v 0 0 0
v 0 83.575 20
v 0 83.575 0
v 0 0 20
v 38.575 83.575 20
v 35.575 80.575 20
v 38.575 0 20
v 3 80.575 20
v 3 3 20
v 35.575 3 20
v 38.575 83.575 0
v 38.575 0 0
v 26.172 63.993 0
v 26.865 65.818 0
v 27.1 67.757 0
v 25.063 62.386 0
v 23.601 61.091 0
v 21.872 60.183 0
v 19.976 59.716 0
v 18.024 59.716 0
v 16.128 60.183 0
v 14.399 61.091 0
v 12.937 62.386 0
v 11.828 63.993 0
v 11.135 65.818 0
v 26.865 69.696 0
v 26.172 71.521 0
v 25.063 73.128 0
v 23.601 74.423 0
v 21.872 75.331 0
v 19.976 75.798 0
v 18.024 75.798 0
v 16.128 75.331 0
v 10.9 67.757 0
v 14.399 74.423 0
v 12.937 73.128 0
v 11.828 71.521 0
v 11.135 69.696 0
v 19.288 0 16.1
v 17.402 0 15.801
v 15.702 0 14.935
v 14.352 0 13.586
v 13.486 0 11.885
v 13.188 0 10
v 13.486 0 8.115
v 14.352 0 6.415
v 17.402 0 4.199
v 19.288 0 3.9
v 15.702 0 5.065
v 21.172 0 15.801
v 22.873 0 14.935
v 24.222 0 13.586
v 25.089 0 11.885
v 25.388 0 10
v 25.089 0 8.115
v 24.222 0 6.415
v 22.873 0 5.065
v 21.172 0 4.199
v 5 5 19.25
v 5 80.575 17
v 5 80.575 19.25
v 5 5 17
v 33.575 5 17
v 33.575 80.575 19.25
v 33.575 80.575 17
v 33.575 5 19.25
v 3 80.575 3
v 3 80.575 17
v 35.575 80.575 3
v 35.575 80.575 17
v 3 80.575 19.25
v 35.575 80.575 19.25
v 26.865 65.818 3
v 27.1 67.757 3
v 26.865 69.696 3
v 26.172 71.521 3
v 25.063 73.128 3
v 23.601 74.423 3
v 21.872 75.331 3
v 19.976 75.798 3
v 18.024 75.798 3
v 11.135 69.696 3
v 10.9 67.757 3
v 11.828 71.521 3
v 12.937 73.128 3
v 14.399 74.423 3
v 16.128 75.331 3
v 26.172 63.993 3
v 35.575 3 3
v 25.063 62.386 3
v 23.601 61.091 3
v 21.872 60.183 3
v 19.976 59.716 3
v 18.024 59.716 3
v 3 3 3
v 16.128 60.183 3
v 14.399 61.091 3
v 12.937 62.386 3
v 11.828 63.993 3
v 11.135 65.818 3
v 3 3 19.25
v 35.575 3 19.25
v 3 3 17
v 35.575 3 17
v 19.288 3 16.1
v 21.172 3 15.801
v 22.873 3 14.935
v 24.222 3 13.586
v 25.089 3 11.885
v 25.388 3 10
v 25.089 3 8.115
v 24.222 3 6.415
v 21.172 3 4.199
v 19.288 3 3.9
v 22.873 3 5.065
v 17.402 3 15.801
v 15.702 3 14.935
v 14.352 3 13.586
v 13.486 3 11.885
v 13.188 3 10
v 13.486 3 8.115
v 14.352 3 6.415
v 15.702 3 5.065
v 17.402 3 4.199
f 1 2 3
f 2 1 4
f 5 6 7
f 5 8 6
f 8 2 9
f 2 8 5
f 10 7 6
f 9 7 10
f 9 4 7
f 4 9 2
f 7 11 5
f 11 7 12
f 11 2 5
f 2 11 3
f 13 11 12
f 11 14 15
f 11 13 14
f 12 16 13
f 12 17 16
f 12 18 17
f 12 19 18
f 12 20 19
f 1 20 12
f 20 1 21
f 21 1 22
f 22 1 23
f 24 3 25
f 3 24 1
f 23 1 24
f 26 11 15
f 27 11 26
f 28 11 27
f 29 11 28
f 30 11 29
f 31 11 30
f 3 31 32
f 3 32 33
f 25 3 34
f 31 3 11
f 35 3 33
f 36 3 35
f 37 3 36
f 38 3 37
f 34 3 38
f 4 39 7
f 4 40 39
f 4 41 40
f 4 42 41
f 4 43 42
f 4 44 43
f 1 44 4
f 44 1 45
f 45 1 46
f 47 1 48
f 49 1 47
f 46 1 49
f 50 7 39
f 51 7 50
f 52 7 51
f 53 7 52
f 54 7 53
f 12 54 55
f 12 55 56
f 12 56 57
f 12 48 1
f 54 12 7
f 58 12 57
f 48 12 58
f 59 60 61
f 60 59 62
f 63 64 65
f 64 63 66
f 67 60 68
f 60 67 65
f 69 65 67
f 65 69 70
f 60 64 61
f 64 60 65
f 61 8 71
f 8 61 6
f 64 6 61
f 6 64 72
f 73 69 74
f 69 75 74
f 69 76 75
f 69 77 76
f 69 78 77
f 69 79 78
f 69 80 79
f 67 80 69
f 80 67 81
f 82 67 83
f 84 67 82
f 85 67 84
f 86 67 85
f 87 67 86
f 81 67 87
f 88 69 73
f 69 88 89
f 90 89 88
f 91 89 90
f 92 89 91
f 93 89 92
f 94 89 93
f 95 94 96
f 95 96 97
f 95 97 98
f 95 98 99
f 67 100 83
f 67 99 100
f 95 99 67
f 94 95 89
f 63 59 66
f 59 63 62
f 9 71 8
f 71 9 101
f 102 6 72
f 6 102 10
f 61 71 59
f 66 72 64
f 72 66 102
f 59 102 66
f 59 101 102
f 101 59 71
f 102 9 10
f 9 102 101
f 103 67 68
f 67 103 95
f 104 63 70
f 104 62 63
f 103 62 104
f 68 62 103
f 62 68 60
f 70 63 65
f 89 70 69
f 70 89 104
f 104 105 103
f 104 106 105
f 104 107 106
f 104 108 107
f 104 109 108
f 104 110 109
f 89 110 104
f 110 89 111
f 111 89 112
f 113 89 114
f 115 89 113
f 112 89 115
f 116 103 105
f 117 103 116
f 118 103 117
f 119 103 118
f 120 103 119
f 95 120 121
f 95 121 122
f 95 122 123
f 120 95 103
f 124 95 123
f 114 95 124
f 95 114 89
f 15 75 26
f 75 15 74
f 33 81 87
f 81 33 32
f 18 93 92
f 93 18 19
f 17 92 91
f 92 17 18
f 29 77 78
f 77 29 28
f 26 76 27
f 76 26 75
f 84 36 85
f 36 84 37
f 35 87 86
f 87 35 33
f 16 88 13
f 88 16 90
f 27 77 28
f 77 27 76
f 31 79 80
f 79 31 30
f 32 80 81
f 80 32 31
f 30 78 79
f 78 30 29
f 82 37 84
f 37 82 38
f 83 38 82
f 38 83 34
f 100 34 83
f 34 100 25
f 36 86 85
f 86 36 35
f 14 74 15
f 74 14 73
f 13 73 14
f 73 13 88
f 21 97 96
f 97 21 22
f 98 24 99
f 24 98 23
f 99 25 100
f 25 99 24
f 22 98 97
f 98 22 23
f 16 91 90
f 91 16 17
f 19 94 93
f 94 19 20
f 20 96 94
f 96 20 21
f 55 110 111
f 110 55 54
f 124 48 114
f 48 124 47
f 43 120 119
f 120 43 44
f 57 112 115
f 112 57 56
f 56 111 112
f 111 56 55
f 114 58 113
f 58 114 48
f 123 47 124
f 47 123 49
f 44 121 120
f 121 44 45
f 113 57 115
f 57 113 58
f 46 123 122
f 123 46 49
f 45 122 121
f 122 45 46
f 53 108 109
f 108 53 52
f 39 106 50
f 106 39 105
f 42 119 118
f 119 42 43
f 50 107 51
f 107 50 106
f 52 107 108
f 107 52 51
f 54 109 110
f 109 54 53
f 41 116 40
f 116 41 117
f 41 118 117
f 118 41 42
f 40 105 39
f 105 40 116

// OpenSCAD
difference() {
    cube([38.575, 83.575, 20]); // main box
    translate([5,5,3]) cube([28.575,75.575,17]); // inside of box (with one side off for sensor)
    translate([3,3,20-0.75]) cube([32.575,77.575,0.75]); // top of ledge
    translate([3,3,3]) cube ([32.575,77.575,14]); // bottom of ledge
    translate([16+3,83.757-13-3,0]) cylinder(d=16.2, h=4); // hole for ultrasonic
    translate([38.575/2,0,20/2]) rotate([-90,0,0]) cylinder (d=12.2, h=4); // hole for power connector
}
